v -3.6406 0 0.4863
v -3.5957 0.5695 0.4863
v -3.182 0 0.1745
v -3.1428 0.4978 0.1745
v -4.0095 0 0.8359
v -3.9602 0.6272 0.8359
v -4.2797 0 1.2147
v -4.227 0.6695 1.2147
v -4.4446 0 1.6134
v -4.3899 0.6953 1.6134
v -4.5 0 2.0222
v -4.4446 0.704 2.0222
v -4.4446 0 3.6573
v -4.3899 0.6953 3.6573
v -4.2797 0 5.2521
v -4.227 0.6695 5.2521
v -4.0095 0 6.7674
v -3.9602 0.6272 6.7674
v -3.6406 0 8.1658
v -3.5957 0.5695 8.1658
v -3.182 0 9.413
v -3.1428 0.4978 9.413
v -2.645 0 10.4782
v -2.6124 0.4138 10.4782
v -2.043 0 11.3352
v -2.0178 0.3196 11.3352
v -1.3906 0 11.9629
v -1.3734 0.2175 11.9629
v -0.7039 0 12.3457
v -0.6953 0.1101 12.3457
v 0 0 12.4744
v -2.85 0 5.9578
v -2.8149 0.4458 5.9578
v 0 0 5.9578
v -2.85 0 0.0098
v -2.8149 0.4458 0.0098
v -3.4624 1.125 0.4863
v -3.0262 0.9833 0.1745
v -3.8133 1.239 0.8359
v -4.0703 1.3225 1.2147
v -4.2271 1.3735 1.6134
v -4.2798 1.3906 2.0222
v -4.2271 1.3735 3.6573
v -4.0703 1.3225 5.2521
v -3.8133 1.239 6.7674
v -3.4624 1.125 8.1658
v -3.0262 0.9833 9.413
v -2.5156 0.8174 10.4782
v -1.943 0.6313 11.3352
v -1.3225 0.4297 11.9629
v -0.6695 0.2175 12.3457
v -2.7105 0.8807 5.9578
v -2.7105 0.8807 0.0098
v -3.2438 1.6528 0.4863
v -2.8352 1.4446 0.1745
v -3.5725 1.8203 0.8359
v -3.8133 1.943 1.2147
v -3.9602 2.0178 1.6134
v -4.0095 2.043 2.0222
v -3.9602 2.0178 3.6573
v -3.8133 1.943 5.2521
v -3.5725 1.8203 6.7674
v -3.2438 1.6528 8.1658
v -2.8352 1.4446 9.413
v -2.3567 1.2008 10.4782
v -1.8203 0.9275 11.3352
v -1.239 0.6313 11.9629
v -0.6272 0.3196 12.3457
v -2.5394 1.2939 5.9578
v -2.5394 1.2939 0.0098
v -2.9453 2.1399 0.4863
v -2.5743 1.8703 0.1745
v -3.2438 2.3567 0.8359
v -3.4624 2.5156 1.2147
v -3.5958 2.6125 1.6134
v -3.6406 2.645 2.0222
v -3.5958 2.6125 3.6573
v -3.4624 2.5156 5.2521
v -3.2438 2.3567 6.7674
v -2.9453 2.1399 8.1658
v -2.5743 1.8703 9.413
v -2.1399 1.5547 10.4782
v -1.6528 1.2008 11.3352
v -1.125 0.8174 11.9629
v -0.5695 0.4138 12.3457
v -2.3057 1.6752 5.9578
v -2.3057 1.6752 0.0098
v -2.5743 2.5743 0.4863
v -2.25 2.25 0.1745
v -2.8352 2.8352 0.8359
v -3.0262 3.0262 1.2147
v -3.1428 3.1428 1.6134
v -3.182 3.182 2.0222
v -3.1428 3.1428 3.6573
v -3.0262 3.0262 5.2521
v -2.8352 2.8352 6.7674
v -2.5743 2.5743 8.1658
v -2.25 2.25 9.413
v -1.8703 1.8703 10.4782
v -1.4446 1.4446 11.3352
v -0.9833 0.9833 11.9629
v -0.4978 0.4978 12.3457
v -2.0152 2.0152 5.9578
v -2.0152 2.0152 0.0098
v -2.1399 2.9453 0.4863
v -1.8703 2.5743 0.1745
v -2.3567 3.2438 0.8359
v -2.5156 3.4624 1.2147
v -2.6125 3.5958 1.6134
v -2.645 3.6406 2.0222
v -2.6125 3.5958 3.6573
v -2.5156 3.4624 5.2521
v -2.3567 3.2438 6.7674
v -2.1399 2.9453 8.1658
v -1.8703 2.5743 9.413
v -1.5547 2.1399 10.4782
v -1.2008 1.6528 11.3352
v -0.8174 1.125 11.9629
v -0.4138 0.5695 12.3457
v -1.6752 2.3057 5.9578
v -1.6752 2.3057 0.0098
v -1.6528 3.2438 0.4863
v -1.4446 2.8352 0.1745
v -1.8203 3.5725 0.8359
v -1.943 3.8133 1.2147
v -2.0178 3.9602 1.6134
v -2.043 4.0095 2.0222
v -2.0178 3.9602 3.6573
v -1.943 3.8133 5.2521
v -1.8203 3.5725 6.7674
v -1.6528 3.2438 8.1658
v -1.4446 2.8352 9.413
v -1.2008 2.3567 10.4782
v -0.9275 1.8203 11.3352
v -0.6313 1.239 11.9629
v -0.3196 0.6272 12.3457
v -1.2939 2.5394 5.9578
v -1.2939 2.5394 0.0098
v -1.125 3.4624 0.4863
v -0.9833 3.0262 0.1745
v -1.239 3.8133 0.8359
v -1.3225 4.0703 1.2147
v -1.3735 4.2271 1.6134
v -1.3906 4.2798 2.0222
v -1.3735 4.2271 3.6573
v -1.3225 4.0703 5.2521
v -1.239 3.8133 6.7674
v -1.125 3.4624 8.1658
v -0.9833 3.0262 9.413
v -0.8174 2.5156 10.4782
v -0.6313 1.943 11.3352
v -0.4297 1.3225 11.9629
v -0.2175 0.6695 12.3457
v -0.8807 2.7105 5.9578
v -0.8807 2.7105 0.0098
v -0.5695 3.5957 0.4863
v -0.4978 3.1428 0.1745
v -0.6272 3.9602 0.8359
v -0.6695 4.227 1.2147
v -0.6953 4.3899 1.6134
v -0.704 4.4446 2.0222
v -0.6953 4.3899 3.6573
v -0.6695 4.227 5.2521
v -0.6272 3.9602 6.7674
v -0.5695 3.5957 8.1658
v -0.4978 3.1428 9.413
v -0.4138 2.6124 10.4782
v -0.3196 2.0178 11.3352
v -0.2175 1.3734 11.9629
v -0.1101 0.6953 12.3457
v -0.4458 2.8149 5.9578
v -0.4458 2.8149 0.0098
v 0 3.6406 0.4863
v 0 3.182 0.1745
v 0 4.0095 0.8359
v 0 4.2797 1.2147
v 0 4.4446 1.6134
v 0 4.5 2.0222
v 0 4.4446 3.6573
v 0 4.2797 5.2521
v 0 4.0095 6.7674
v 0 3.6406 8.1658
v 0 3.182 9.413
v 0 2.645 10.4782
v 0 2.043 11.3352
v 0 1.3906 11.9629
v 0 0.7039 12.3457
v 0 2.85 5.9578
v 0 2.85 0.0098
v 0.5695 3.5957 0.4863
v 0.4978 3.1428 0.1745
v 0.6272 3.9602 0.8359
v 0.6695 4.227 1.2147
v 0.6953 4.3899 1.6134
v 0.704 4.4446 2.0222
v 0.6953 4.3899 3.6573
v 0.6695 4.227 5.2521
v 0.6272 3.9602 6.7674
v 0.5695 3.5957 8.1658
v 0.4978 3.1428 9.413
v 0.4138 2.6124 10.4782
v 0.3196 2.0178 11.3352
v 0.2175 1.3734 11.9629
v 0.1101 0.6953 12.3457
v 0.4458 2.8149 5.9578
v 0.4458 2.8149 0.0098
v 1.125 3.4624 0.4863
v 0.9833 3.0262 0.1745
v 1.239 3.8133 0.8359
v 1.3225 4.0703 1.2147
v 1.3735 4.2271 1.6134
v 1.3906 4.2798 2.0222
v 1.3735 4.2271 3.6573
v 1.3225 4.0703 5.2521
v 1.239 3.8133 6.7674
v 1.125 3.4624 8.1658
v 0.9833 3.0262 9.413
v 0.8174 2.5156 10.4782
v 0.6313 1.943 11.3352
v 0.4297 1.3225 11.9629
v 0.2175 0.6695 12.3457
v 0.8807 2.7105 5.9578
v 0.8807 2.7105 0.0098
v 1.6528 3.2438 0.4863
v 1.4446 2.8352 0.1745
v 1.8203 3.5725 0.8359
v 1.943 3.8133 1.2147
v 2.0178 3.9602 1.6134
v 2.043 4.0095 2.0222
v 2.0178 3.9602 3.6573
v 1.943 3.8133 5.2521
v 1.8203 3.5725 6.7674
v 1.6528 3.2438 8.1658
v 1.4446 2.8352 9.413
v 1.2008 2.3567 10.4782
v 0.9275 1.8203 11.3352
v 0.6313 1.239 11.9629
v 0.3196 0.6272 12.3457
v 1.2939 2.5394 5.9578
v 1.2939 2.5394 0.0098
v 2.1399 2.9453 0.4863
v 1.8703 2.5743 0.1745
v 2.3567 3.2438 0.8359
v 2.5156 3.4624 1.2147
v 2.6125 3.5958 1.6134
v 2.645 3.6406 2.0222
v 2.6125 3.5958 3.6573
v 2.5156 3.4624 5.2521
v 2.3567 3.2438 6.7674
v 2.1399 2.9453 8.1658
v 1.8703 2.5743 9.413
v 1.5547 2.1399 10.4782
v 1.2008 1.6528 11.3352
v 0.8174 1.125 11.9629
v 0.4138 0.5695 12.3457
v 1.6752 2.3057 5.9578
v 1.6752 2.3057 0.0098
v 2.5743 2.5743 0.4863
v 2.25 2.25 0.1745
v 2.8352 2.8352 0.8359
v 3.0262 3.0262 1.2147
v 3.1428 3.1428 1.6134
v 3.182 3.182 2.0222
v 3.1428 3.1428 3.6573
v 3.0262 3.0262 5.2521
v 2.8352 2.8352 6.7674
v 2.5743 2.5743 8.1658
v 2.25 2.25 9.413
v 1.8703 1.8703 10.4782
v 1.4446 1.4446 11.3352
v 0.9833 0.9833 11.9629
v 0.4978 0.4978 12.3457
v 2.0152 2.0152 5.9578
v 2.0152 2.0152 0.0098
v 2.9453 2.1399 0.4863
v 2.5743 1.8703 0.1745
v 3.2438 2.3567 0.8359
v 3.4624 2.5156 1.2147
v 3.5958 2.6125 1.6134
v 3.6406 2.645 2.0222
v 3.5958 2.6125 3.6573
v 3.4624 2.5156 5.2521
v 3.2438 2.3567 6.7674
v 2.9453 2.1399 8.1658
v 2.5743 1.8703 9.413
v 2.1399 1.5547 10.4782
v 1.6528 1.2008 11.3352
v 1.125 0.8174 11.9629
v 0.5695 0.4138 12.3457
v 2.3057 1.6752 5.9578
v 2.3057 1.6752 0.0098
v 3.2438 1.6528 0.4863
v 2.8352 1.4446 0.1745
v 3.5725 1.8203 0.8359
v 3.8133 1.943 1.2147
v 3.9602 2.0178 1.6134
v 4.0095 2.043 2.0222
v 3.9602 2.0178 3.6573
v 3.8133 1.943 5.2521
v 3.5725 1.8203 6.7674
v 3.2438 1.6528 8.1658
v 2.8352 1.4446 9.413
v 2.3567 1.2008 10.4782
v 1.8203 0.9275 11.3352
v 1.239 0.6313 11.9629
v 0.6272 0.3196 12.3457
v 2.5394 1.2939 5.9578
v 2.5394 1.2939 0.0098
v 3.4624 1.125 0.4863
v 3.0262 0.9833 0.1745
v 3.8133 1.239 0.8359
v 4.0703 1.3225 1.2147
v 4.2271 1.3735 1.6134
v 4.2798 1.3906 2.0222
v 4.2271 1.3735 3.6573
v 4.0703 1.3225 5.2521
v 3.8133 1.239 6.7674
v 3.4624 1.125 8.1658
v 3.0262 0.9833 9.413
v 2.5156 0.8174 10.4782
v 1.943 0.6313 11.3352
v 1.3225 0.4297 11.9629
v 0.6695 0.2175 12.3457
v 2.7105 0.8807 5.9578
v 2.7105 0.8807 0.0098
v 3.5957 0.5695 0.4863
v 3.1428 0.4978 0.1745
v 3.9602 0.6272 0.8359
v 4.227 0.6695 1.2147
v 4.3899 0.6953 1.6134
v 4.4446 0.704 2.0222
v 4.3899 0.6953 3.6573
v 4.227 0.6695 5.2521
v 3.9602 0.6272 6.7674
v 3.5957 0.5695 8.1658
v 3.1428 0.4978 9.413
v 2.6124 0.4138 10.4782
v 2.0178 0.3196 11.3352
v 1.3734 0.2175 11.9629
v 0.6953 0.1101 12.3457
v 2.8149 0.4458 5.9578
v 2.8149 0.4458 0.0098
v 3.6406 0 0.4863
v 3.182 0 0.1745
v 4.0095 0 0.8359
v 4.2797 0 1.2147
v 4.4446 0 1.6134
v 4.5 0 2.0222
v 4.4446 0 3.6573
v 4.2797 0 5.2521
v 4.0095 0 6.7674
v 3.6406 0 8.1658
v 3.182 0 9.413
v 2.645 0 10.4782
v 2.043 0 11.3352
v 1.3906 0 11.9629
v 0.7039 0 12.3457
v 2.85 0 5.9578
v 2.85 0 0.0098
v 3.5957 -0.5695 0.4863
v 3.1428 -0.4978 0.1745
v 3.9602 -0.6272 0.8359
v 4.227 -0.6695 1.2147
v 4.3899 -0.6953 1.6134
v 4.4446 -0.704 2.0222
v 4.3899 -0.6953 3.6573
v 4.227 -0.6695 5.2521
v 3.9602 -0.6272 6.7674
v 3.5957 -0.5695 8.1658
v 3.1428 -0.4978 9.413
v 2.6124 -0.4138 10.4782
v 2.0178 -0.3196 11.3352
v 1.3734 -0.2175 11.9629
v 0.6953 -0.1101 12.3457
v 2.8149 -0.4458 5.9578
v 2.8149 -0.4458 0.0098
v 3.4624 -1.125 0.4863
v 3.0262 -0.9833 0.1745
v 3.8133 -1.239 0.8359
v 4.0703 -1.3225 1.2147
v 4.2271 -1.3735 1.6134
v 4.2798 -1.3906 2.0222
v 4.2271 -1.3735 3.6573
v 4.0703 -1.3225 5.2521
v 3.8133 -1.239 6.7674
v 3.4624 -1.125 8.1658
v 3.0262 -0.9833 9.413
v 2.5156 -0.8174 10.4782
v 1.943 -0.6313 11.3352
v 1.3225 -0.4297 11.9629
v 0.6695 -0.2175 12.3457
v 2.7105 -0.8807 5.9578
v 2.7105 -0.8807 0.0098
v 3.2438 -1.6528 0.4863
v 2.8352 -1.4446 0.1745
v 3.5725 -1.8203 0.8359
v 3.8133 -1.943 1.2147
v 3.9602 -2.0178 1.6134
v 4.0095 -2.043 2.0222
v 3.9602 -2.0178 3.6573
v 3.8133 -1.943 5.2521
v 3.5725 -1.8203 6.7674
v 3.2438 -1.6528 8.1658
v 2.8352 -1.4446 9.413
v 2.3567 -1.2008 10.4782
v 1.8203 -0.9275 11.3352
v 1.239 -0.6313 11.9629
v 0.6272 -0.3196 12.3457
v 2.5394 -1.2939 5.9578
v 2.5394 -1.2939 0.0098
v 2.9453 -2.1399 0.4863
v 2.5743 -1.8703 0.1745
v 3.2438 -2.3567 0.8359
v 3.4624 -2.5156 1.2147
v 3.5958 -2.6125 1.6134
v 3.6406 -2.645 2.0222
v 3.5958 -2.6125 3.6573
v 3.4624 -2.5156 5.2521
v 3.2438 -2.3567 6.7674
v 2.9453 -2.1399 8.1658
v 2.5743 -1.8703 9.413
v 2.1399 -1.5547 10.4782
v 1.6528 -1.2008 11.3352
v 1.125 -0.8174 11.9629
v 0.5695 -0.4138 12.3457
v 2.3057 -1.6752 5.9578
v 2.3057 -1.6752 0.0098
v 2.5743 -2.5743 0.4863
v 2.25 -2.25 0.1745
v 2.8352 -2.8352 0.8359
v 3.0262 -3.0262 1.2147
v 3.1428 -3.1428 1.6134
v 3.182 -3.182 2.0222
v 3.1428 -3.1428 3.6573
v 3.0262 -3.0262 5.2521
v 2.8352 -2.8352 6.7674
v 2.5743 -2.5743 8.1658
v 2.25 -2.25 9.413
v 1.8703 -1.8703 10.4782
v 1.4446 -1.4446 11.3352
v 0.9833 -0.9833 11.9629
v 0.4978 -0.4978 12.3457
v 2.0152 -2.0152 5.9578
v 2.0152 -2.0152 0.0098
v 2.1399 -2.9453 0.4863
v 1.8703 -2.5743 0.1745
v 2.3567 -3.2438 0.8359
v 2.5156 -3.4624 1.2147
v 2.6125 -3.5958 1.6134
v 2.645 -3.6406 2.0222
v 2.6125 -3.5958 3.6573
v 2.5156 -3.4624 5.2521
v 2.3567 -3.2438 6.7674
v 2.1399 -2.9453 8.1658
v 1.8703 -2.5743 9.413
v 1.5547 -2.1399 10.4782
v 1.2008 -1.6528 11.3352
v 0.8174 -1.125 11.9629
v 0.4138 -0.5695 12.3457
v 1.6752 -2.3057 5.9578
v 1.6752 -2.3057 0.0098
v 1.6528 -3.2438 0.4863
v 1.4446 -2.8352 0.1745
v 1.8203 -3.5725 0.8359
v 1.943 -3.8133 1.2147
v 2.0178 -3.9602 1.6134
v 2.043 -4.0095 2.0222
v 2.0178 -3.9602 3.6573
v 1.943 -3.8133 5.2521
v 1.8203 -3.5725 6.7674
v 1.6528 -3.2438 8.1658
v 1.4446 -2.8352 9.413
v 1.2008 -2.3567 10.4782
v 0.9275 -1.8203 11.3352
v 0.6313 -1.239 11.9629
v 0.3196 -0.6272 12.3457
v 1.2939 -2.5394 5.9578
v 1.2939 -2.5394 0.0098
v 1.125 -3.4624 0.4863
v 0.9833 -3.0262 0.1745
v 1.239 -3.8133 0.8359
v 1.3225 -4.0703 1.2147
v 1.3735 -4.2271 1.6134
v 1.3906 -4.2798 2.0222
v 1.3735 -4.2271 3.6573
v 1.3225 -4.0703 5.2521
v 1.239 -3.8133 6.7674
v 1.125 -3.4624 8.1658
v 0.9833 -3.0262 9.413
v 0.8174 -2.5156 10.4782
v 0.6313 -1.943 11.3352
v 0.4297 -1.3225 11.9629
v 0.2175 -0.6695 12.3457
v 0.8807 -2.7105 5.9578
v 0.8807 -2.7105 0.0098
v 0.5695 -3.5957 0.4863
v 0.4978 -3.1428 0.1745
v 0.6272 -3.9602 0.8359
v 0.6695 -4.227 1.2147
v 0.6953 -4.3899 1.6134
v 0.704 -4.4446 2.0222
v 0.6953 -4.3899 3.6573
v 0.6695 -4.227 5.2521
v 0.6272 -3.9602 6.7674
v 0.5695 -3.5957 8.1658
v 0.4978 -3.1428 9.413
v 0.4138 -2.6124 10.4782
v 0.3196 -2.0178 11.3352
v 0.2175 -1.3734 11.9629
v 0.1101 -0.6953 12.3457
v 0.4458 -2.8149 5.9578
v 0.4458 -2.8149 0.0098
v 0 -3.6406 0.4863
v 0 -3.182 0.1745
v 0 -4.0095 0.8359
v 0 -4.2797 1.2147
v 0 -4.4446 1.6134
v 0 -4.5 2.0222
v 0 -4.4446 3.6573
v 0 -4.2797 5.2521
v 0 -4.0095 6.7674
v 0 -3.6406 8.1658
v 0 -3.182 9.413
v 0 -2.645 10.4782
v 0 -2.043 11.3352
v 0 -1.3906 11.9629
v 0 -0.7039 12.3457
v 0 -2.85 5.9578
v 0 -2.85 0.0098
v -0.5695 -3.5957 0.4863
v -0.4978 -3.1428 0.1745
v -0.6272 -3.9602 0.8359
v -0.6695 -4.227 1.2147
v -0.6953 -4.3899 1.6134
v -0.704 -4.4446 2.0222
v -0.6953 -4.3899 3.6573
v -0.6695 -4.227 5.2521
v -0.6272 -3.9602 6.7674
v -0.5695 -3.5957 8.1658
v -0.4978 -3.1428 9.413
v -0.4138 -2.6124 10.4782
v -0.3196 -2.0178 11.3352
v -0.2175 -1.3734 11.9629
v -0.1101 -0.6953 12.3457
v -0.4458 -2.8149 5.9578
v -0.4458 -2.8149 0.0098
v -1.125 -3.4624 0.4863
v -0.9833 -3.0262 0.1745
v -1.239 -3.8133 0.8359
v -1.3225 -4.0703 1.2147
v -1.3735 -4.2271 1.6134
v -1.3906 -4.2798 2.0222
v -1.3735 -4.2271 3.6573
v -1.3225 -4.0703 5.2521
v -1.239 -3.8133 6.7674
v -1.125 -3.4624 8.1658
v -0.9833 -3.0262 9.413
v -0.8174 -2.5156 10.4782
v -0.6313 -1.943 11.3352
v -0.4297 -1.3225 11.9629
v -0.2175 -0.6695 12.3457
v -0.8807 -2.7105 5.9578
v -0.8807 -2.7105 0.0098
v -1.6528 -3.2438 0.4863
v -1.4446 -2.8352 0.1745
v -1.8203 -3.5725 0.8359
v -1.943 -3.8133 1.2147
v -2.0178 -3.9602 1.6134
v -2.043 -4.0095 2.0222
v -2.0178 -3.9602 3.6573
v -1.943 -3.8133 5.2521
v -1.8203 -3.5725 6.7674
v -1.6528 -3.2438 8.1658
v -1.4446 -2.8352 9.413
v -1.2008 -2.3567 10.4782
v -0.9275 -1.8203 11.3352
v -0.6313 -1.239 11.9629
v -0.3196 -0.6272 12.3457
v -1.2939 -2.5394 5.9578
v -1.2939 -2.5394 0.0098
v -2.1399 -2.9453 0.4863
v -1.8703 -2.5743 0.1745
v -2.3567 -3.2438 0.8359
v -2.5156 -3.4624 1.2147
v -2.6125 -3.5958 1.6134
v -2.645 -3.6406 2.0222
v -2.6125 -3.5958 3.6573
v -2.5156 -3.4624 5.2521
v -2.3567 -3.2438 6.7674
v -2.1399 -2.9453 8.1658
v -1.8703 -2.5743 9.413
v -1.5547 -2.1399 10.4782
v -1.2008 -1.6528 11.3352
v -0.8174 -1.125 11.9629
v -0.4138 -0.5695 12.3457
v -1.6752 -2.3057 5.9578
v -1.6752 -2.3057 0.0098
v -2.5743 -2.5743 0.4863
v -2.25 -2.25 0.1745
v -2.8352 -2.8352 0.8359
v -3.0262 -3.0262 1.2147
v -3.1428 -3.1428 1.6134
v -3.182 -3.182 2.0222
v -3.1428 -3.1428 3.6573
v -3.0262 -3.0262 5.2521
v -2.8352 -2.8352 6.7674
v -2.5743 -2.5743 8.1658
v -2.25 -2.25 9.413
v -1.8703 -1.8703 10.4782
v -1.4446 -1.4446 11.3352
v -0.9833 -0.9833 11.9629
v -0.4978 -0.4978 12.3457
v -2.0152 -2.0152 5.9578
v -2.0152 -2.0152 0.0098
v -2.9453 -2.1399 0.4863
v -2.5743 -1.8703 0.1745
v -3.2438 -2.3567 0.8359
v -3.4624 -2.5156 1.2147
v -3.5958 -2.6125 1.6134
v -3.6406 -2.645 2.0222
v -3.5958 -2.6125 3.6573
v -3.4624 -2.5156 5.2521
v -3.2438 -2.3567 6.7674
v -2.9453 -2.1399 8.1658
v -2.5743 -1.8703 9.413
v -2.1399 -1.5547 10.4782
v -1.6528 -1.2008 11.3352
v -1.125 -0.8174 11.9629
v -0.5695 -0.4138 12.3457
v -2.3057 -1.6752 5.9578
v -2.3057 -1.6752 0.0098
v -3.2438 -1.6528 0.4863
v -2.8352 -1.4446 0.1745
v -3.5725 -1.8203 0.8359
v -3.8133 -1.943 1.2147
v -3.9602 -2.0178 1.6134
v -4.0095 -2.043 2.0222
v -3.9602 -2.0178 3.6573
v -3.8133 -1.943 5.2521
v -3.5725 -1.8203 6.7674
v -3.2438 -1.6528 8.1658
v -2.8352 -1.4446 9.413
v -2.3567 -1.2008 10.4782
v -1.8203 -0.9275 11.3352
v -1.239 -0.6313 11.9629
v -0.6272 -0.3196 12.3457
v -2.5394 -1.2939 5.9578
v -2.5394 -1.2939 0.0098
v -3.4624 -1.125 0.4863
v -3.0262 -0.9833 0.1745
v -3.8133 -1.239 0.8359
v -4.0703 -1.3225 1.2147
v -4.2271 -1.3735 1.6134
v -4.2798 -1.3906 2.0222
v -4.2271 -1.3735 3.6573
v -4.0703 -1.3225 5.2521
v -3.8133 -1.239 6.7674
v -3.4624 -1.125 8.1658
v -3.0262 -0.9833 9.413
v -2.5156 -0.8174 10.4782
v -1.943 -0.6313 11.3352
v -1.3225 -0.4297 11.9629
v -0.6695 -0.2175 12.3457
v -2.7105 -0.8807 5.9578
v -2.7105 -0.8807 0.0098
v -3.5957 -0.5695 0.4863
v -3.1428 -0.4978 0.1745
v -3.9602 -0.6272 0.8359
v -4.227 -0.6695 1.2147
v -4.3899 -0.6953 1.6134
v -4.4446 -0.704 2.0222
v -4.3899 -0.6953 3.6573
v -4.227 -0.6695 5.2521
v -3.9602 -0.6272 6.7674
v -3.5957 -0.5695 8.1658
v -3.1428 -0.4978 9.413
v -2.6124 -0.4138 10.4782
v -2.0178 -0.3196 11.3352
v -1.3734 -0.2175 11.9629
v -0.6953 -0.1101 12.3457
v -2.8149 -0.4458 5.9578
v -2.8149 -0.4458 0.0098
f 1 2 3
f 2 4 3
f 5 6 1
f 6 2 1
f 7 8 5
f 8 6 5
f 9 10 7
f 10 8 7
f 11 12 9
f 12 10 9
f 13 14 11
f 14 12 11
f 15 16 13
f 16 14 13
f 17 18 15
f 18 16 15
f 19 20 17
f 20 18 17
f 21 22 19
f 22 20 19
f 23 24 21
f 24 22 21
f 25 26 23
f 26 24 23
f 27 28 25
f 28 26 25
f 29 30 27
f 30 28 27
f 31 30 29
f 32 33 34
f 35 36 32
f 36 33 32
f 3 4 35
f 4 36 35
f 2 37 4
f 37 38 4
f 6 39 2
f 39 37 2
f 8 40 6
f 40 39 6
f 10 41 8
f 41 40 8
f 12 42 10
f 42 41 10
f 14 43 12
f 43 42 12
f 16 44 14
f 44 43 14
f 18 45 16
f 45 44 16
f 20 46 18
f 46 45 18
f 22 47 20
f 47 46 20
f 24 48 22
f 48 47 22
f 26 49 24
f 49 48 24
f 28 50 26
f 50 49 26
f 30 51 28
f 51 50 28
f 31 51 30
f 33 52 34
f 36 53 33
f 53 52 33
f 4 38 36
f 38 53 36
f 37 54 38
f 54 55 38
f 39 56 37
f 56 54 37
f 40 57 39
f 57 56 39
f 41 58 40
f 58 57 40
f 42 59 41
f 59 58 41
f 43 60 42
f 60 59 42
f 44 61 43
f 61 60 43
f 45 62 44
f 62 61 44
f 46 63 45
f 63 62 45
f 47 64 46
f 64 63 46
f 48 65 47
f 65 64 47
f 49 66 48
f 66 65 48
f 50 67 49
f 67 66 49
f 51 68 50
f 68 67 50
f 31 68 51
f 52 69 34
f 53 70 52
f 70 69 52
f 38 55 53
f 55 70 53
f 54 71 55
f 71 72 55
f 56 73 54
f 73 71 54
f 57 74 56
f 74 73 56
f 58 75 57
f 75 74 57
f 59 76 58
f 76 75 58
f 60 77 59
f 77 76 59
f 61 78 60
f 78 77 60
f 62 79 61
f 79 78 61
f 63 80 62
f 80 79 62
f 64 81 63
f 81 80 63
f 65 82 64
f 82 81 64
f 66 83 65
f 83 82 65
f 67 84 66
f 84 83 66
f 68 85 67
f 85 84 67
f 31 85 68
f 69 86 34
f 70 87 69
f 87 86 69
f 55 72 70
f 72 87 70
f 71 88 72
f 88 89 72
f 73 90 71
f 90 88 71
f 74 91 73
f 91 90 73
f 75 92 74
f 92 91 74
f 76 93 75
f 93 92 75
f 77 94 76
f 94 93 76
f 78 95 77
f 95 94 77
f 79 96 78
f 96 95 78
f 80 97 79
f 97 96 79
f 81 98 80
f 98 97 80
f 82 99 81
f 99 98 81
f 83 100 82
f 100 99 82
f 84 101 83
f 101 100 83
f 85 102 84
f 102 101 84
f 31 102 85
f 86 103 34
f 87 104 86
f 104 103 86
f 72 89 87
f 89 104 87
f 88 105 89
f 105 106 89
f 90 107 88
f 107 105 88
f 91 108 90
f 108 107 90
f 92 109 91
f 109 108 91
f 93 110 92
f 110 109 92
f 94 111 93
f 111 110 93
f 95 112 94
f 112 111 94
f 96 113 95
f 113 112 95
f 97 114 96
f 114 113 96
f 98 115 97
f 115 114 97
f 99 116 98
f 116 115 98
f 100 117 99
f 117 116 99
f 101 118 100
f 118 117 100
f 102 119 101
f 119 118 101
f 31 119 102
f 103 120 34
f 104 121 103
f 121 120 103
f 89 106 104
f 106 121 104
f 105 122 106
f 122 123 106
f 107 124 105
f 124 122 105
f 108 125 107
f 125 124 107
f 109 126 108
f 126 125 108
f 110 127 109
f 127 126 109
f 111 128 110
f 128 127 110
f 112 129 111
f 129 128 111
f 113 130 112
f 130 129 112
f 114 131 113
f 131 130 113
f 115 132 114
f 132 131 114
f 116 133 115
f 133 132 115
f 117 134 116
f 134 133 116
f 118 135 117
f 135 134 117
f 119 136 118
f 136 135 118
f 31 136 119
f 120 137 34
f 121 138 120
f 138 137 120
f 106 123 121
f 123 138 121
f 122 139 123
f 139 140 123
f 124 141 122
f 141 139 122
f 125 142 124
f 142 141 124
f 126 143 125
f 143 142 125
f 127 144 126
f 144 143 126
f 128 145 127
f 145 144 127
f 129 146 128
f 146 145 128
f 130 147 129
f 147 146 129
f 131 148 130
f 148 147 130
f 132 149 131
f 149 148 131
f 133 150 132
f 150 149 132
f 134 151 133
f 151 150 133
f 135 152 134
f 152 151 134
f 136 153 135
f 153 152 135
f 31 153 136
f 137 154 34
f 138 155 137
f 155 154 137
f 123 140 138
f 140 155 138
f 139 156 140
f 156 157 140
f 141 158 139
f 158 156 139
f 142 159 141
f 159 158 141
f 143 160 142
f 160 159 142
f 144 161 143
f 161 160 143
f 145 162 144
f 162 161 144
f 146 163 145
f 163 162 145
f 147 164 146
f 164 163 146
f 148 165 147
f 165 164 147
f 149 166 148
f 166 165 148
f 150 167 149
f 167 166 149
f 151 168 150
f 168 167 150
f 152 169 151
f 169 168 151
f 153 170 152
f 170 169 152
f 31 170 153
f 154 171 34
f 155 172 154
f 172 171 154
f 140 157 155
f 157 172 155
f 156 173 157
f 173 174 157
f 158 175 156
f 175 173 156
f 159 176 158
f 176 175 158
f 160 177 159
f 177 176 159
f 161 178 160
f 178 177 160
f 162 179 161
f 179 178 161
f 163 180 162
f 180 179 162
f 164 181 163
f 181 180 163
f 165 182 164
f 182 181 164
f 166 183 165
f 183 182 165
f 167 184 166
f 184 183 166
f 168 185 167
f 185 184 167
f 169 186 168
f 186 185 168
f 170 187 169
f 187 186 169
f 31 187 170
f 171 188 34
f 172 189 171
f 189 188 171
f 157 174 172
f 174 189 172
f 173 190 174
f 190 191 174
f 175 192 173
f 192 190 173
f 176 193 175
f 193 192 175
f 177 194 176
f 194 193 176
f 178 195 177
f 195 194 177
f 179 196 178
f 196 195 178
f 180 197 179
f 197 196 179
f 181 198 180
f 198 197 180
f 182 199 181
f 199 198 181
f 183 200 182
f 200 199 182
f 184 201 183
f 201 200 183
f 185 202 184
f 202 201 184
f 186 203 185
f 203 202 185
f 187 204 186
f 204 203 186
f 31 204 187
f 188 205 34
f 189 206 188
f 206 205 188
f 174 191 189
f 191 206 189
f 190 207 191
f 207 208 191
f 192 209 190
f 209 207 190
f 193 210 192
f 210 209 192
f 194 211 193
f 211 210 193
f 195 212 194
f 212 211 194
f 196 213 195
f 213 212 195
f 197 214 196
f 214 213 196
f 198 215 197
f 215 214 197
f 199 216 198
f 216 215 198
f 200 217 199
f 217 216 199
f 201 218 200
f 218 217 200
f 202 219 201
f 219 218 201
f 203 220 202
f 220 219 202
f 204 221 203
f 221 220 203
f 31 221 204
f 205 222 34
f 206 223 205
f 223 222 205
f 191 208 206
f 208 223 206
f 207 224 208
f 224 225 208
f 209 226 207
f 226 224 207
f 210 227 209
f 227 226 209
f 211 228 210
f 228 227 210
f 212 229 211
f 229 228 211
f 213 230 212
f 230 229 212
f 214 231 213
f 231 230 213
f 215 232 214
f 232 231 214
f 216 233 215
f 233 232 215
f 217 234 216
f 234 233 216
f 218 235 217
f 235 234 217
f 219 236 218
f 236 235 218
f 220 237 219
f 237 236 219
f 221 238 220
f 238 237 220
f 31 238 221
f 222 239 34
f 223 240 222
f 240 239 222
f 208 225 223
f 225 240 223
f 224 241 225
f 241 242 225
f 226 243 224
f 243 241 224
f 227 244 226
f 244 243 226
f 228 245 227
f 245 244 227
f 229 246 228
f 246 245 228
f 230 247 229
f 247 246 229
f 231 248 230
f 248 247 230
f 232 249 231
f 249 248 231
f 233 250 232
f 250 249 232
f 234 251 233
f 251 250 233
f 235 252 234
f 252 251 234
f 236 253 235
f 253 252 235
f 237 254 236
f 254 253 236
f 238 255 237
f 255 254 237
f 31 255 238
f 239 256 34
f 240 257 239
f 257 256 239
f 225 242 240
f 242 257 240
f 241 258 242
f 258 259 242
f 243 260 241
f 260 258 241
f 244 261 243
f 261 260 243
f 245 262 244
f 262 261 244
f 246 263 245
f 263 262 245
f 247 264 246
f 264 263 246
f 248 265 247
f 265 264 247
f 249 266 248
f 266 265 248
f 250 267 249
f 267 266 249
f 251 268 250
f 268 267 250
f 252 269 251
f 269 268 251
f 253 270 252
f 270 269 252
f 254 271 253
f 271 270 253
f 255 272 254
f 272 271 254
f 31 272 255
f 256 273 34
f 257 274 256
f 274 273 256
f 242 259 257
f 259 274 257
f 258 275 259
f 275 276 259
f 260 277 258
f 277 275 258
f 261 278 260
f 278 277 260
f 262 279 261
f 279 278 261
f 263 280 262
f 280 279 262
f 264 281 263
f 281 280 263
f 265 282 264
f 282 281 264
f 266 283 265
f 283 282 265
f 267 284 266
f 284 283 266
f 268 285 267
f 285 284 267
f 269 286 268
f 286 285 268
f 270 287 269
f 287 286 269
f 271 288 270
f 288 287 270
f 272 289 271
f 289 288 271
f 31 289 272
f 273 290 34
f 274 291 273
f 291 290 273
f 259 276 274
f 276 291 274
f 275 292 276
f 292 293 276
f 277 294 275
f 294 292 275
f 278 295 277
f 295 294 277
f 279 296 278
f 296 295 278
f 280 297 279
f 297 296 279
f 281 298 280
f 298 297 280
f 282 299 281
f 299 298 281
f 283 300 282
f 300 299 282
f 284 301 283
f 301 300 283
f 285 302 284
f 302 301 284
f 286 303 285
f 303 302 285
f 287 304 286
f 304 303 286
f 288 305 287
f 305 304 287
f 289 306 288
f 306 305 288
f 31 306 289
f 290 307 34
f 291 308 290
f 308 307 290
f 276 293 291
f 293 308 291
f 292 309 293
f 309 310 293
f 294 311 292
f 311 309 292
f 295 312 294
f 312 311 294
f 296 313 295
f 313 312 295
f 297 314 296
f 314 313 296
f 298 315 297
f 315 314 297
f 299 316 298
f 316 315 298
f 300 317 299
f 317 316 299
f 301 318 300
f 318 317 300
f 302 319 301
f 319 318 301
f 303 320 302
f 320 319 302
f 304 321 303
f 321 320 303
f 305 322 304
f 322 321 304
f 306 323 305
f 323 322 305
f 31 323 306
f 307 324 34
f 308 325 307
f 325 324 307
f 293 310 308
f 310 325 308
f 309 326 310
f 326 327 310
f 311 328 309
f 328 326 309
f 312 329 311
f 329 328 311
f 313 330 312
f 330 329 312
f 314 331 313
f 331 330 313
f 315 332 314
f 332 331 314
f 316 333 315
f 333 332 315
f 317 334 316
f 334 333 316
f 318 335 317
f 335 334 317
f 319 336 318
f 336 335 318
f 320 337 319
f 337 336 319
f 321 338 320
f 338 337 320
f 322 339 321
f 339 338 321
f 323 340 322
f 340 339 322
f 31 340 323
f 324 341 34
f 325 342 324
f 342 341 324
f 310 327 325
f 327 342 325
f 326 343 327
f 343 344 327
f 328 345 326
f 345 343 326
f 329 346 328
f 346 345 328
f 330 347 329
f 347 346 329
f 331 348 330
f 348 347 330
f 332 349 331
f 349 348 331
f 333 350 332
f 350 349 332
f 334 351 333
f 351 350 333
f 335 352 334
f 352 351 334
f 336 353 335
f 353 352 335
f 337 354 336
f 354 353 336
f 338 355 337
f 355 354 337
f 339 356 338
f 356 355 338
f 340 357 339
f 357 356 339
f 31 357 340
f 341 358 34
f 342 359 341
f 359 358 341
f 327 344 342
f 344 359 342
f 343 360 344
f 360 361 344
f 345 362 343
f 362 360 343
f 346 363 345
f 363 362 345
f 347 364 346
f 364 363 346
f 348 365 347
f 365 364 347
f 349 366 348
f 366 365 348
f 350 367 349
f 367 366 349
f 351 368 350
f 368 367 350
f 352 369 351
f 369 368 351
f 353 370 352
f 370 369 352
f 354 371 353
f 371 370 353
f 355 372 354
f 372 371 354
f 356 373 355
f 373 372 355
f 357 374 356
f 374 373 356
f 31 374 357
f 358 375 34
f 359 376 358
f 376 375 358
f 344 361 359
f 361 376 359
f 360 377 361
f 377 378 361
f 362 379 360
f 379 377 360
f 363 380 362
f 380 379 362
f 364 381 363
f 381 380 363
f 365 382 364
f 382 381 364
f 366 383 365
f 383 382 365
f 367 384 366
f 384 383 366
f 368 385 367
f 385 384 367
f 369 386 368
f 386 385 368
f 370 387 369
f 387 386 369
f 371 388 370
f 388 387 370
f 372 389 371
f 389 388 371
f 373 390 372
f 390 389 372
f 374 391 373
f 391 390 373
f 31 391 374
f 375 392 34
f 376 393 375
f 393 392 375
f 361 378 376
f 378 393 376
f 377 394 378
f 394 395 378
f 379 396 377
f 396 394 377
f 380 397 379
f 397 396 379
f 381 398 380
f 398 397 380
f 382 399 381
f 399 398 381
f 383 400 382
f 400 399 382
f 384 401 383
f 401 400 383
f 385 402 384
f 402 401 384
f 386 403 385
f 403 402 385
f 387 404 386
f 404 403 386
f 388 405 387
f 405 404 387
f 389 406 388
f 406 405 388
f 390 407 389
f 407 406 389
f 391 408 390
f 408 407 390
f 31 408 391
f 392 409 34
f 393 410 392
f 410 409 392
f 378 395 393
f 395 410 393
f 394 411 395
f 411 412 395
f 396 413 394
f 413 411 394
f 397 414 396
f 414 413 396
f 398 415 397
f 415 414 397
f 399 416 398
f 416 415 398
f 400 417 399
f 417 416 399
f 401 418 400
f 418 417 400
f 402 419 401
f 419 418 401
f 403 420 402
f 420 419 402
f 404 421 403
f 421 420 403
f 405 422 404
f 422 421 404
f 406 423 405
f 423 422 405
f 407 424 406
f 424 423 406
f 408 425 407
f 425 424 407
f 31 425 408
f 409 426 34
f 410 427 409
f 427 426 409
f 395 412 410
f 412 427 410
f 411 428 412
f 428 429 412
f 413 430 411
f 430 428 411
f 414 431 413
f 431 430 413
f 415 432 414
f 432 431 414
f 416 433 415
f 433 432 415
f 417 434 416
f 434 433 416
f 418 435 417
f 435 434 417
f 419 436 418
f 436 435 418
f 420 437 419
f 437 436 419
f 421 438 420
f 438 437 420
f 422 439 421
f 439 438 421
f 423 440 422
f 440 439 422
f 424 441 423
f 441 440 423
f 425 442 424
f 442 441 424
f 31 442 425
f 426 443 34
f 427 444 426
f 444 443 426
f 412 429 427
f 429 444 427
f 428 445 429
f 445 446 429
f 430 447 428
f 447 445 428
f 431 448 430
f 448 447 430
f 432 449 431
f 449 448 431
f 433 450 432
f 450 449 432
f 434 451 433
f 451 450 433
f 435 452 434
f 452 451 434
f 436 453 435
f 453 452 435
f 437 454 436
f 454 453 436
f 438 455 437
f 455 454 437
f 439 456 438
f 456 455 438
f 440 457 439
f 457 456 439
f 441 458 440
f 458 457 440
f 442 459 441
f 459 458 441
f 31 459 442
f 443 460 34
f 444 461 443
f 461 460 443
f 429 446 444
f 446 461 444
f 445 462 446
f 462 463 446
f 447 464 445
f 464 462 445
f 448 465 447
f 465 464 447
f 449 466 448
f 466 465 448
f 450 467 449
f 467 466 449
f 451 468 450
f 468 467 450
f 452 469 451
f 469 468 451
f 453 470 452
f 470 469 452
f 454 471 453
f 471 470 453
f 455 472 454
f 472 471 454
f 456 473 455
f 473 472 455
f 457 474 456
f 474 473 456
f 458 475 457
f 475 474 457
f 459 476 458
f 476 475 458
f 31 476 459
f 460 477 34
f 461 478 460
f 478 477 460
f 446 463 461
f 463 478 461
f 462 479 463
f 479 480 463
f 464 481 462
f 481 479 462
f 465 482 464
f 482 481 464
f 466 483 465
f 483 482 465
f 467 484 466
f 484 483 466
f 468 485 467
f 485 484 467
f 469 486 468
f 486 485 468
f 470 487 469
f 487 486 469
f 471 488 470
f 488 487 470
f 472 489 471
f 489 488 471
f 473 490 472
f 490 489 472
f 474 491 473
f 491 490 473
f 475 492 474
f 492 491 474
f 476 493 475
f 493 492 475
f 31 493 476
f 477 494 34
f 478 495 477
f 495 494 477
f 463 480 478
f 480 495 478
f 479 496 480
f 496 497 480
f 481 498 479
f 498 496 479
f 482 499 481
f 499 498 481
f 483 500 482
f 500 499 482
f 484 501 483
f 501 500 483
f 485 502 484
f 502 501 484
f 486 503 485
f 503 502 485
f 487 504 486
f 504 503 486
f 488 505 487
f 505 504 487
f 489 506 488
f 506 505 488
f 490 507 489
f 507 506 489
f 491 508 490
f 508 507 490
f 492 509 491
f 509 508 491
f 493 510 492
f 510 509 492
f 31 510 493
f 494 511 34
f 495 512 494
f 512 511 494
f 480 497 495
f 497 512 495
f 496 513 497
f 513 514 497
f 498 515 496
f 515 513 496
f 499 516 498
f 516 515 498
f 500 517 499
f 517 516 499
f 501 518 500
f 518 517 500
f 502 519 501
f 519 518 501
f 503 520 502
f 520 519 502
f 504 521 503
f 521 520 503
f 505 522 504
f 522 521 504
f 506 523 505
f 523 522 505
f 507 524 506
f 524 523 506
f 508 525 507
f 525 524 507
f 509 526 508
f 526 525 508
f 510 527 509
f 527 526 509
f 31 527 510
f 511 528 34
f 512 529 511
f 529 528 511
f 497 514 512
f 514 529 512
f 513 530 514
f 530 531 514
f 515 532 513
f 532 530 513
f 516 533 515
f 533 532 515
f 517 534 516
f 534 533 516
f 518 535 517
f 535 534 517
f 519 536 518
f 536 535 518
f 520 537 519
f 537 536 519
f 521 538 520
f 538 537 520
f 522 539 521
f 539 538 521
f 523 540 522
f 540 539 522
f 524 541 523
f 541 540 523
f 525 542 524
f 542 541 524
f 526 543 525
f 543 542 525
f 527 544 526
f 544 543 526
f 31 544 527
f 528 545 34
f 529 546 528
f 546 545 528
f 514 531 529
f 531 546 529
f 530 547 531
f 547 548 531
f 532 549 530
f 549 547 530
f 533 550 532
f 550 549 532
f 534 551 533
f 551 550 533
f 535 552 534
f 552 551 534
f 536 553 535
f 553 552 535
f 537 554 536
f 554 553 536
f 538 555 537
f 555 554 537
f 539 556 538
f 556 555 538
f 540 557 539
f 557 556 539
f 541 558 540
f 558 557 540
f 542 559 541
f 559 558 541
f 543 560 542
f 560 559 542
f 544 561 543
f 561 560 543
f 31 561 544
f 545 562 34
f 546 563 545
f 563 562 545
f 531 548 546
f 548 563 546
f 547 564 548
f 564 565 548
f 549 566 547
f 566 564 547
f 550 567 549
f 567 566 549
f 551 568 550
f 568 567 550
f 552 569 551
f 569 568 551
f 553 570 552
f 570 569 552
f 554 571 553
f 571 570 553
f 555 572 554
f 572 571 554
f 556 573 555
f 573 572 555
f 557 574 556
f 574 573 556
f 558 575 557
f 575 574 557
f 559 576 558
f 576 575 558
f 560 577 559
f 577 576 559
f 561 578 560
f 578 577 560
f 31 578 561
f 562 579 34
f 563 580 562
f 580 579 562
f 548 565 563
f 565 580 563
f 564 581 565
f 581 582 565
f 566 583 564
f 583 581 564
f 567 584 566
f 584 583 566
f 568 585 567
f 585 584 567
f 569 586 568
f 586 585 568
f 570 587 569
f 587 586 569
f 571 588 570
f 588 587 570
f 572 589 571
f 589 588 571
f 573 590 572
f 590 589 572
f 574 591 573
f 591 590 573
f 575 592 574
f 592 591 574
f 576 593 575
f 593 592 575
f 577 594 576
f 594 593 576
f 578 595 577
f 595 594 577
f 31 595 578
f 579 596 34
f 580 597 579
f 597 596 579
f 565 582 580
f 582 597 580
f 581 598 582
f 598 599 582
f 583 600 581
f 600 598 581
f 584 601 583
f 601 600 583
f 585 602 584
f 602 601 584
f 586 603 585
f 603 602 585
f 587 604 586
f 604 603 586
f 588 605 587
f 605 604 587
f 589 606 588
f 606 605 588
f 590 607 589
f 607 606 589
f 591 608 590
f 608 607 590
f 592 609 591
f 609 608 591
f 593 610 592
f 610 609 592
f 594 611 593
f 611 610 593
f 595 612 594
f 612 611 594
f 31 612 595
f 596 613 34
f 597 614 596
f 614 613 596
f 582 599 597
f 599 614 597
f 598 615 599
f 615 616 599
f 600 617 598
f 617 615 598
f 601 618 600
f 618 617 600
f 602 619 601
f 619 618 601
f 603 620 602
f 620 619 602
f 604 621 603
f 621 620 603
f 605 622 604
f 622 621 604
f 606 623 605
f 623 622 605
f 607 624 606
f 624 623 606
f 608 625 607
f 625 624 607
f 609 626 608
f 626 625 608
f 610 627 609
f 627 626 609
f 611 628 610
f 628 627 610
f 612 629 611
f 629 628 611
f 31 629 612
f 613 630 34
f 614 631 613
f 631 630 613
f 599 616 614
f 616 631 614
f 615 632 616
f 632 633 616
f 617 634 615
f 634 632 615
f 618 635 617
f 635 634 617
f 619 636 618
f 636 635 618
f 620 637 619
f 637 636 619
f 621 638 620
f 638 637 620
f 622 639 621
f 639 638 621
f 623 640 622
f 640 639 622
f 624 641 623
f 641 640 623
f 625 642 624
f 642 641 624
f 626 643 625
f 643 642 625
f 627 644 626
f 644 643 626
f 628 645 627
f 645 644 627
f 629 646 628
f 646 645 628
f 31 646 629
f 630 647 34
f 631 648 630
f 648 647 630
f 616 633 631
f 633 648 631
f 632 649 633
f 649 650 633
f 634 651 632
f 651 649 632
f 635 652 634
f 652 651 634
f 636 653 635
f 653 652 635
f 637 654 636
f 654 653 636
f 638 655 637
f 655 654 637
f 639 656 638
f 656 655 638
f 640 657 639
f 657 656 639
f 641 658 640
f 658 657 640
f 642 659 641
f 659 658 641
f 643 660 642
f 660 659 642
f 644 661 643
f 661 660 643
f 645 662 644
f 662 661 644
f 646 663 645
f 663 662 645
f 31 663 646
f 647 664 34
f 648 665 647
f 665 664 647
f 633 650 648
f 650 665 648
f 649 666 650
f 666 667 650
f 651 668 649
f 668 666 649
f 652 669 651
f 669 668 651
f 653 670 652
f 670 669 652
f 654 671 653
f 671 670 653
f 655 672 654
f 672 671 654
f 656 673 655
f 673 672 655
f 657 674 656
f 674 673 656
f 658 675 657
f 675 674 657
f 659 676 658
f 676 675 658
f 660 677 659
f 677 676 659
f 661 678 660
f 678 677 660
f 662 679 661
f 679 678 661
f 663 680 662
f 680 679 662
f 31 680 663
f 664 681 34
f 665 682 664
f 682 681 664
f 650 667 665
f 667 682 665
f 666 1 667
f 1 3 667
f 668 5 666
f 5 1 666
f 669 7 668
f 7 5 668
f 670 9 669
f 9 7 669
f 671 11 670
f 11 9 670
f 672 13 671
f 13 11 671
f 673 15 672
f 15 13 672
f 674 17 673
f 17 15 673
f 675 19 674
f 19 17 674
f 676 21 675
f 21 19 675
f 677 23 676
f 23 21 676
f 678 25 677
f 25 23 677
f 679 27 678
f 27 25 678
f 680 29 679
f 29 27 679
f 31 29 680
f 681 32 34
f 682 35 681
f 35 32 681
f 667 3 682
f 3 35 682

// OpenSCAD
overall_height=12.5;
overall_width=9;

hole_width=5.7;
hole_height=5.7;
num_slices=40;


big_ellipse_height=0.8*2*overall_height;
small_ellipse_height=0.2*2*overall_height;

// this is the height difference that the hole in the bottom removes from the overall height
diff =  small_ellipse_height/2*(1.0-sqrt(1-pow(hole_width/overall_width,2)));

// the real hole height has to be increased by diff
real_hole_height=hole_height+diff;

big_ellipse_scale=big_ellipse_height/overall_width;
small_ellipse_scale=small_ellipse_height/overall_width;

$fn=num_slices;

// scale so that diff is added to overall_height
scale([1,1,(overall_height+diff)/overall_height])
translate([0,0,-diff])
rotate_extrude(angle = 360, convexity = 10) {
//rotate([0,0,90])
difference() {
translate([0,small_ellipse_height/2])
   union() {
     difference() {
            scale([overall_width,big_ellipse_height])
                circle(d=1);
            translate([-overall_width/2,-big_ellipse_height])
            square([overall_width,big_ellipse_height]);
       };
    scale([overall_width,small_ellipse_height])circle(d=1);
    };
    translate([-hole_width/2,0])square([hole_width,real_hole_height]);
    translate([-overall_width,0]) 
    square([overall_width,overall_height]);
}
}
